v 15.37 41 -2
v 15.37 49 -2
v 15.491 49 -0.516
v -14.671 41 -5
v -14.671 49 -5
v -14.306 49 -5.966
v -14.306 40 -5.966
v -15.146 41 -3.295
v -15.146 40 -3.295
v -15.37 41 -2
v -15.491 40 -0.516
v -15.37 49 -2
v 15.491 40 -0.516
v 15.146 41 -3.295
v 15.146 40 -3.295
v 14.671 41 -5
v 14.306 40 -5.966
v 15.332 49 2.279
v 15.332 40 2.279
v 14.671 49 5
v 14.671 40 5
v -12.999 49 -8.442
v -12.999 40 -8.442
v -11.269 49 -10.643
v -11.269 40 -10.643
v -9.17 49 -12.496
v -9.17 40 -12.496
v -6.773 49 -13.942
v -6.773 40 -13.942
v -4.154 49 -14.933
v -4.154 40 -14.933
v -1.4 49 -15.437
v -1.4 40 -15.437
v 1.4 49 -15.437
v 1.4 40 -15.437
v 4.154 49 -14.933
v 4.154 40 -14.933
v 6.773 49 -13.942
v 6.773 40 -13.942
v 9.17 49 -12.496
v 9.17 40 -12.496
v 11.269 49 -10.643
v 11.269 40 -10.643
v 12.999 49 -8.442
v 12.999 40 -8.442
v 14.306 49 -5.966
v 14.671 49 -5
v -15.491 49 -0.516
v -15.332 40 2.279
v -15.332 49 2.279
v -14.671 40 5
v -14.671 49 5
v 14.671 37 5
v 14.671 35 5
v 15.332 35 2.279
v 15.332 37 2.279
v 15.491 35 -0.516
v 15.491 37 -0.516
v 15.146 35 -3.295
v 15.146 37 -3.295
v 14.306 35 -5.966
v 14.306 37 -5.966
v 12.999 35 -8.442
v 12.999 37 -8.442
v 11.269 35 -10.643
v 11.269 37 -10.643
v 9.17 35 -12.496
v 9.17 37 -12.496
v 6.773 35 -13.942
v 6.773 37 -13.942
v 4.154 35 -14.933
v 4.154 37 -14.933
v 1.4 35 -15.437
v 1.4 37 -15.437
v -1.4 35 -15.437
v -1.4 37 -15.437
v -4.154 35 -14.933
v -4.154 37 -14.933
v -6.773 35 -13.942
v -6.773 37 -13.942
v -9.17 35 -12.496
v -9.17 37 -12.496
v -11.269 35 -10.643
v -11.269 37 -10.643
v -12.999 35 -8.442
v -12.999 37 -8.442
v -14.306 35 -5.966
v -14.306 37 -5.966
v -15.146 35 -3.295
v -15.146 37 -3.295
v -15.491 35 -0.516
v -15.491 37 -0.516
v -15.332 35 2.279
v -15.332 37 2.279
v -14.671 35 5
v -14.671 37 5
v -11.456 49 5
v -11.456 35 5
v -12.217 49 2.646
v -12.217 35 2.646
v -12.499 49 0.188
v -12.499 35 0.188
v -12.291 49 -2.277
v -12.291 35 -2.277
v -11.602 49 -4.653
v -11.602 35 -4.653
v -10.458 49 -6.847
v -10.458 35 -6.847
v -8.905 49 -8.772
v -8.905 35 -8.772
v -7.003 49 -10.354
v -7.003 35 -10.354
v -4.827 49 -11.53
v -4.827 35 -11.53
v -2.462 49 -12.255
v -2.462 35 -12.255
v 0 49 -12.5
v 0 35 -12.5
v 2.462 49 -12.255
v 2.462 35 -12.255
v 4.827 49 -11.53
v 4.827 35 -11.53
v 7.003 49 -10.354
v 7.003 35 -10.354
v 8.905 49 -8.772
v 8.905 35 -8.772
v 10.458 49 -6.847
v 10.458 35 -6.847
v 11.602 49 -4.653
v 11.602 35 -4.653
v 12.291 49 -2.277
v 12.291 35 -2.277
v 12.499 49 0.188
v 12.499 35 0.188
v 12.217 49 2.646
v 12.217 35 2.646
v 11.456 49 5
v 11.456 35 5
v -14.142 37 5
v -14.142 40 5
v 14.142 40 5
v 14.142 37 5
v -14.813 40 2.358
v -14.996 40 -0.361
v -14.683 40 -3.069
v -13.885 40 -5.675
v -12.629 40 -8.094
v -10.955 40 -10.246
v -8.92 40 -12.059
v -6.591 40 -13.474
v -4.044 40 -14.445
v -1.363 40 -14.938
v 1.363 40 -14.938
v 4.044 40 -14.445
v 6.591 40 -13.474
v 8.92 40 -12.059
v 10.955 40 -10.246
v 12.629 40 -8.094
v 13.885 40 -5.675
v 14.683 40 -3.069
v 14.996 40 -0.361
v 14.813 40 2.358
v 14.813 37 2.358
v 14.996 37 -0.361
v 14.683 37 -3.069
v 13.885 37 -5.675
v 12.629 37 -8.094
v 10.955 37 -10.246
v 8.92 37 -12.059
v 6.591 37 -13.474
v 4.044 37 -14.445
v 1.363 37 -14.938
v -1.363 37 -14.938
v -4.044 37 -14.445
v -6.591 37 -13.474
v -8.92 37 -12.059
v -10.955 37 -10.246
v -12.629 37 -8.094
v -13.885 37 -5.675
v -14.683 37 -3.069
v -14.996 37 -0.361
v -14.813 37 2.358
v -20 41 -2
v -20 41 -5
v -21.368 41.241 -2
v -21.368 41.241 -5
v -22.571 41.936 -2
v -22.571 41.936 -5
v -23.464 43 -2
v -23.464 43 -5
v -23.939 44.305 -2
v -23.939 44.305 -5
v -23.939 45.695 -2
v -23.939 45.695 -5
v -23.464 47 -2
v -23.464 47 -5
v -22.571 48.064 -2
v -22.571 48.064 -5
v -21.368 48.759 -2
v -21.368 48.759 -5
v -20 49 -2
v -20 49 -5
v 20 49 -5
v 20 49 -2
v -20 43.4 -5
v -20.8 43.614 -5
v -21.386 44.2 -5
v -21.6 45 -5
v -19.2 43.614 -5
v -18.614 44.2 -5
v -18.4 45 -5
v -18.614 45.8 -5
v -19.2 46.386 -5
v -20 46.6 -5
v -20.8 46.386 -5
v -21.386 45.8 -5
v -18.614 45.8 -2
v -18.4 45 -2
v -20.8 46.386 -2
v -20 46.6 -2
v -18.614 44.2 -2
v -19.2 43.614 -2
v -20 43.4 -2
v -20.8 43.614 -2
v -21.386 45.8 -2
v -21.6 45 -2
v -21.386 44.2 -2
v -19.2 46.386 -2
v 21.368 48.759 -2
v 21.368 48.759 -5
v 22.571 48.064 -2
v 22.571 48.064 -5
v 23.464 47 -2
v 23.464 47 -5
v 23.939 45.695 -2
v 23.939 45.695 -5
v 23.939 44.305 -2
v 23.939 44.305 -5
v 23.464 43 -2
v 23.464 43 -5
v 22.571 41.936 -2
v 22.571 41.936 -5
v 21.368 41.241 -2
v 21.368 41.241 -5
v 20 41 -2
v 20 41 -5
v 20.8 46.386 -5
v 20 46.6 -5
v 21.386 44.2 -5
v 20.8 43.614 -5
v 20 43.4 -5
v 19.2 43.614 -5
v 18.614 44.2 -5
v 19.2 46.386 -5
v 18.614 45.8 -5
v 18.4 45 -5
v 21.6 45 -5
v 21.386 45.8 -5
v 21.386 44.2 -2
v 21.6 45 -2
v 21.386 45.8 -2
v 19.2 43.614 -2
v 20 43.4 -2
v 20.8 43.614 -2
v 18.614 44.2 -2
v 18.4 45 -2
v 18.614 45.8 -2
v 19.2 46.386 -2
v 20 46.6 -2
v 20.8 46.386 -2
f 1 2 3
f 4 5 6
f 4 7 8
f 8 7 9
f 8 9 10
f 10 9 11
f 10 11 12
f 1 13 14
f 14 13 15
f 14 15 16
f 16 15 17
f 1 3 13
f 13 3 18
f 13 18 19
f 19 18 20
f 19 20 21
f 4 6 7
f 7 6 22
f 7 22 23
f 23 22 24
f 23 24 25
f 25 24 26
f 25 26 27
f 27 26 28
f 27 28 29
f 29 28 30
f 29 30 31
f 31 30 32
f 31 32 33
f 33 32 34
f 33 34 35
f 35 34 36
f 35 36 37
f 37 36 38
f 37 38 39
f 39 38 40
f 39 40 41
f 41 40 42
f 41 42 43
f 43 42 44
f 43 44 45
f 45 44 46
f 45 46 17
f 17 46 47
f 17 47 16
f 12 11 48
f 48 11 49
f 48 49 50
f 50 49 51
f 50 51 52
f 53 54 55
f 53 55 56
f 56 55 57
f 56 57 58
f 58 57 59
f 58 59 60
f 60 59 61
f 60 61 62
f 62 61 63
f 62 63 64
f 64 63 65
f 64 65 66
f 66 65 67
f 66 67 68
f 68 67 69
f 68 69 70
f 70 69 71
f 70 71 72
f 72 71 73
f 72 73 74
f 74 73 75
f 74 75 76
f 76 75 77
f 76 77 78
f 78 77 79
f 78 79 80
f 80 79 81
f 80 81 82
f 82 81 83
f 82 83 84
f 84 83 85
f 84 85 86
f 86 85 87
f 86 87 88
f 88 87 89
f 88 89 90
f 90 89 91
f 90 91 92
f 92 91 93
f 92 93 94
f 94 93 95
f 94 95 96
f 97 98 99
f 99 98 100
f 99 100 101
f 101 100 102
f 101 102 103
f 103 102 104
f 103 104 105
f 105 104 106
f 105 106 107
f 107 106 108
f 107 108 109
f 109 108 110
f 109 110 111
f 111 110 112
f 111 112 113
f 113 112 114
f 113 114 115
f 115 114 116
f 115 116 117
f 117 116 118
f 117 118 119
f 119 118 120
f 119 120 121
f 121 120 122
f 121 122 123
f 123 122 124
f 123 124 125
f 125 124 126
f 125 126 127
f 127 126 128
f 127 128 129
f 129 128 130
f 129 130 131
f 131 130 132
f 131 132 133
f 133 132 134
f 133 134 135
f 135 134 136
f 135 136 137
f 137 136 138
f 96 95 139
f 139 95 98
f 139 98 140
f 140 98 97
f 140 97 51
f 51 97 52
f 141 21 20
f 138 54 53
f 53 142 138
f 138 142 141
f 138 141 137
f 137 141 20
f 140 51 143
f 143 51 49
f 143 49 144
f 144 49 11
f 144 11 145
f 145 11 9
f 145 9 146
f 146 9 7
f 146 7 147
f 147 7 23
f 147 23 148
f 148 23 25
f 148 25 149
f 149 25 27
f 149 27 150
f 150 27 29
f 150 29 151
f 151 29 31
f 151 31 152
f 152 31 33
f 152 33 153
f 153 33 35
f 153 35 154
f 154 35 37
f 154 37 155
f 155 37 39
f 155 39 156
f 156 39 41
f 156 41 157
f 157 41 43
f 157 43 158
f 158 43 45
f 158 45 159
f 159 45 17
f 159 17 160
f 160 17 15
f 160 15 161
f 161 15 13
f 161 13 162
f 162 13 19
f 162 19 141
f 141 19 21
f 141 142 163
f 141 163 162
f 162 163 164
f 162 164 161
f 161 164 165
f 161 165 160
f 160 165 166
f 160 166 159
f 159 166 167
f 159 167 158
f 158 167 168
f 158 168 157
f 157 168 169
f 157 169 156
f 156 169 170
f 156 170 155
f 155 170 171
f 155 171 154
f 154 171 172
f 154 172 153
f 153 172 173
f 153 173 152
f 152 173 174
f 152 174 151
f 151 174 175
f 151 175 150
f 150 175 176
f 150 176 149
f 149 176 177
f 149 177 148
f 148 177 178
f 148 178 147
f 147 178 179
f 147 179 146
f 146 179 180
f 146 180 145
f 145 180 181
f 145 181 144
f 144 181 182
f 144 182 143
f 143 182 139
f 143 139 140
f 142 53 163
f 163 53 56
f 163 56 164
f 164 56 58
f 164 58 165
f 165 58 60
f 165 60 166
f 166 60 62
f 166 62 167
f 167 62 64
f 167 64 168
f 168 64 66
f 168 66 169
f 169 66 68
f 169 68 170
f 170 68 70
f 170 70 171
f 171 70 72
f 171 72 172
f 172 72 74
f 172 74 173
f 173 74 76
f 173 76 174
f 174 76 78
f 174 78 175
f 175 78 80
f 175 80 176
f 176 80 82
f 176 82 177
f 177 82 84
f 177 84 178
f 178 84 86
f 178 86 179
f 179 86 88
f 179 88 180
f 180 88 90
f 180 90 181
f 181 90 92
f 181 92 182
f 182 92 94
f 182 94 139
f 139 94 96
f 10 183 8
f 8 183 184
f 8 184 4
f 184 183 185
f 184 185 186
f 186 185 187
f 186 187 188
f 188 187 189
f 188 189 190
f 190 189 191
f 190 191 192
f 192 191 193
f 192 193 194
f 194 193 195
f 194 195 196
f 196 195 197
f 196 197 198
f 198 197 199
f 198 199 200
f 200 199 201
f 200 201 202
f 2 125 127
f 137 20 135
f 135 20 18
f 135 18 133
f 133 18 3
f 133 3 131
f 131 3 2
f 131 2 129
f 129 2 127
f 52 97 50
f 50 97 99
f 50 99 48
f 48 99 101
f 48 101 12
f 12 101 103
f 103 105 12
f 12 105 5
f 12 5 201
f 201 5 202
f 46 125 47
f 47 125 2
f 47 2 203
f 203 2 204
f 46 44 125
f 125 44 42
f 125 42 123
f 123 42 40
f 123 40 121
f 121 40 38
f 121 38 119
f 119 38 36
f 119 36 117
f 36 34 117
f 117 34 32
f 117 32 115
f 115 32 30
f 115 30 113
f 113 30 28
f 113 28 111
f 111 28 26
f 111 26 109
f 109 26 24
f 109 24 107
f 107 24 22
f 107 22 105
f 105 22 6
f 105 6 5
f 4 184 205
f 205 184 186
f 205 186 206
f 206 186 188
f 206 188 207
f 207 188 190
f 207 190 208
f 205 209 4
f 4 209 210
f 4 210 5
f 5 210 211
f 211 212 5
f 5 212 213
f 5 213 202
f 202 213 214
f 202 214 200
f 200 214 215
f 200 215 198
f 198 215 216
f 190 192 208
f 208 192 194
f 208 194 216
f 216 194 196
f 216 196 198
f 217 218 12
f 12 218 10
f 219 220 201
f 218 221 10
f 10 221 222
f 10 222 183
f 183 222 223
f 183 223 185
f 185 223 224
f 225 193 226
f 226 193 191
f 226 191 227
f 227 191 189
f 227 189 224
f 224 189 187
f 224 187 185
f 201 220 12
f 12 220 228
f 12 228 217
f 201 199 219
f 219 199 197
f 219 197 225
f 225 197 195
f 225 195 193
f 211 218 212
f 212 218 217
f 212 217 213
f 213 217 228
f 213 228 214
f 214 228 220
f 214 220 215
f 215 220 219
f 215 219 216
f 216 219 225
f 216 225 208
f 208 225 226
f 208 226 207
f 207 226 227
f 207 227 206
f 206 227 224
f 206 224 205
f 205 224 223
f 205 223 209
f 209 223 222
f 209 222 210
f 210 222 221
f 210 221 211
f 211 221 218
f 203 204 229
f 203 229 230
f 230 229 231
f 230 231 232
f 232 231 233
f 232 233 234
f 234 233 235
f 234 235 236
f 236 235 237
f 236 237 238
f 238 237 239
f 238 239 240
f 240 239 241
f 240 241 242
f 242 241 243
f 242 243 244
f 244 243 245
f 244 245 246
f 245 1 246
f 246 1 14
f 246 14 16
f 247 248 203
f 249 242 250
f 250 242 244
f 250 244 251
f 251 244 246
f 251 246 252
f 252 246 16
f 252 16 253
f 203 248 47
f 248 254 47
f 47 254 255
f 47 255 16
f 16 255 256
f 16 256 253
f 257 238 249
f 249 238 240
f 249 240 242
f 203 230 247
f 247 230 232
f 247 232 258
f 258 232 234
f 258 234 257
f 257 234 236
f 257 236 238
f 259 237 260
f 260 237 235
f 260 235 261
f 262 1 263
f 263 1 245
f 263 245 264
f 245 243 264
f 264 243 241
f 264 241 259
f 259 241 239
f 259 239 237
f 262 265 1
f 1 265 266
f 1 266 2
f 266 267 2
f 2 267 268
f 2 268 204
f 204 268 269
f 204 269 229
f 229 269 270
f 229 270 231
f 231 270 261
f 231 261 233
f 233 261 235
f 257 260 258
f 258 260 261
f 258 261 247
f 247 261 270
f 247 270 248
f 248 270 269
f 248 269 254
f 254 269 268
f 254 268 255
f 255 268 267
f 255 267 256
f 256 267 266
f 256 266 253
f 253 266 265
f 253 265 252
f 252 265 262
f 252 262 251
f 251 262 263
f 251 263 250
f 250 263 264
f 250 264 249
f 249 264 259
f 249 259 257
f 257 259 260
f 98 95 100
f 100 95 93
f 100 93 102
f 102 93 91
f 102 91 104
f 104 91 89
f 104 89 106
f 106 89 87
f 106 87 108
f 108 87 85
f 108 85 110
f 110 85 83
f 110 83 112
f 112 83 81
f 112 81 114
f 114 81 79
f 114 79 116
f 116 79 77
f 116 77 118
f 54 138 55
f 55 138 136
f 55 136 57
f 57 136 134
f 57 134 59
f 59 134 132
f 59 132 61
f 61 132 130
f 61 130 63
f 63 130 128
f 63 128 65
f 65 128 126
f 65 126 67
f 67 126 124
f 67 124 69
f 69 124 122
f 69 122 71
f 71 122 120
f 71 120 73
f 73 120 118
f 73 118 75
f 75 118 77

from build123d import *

# Parameters (mm, degrees)
CORTE_EXTRUS_O1_DEPTH      = 1
CORTE_EXTRUS_O1_DEPTH_BACK = 51
RESSALTO_EXTRUS_O1_START   = -2
ESBO_O3_R                  = 1.6
RESSALTO_EXTRUS_O1_DEPTH   = 3
ESBO_O4_W                  = 67.372166219
ESBO_O4_H                  = 55.074072385
ESBO_O4_W_2                = 51.598524128
ESBO_O4_H_2                = 14
CORTE_EXTRUS_O2_DEPTH      = 6
CORTE_EXTRUS_O2_DEPTH_BACK = 16.5


with BuildPart() as part:
    # Esboço1 → Revolução1 (revolve)
    with BuildSketch(Plane.XY):
        Polygon((15, 37), (15.5, 37), (15.5, 13), (15, 13), (15, 10), (15.5, 10), (15.5, 0), (12.5, 0), (12.5, 50), (15.5, 50), (15.5, 40), (15, 40), align=None)
    revolve(axis=Axis((0, 0, 0), (0, 1, 0)))

    # Esboço2 → Corte-extrusão1 (cut, two sides)
    with BuildSketch(Plane(origin=(0, 50, 0), x_dir=(1, 0, 0), z_dir=(0, 1, 0))) as corte_extrus_o1_sk:
        with BuildLine():
            Line((-11.456439237, -5), (-14.671400751, -5))
            ThreePointArc((-14.671400751, -5), (0, -15.5), (14.671400751, -5))
            Line((14.671400751, -5), (11.456439237, -5))
            ThreePointArc((11.456439237, -5), (0, -12.5), (-11.456439237, -5))
        make_face()
    extrude(amount=CORTE_EXTRUS_O1_DEPTH, mode=Mode.SUBTRACT)
    extrude(corte_extrus_o1_sk.sketch, amount=-CORTE_EXTRUS_O1_DEPTH_BACK, mode=Mode.SUBTRACT)

    # Esboço3 → Ressalto-extrusão1 (add)
    with BuildSketch(Plane.XY.offset(RESSALTO_EXTRUS_O1_START)):
        with BuildLine():
            Line((-13.5, 49), (-20, 49))
            ThreePointArc((-20, 49), (-24, 45), (-20, 41))
            Line((-20, 41), (-13.5, 41))
            Line((-13.5, 41), (-13.5, 49))
        make_face()
        with Locations((-20, 45)):
            Circle(ESBO_O3_R, mode=Mode.SUBTRACT)
        with BuildLine():
            Line((13.5, 41), (13.5, 49))
            Line((13.5, 49), (20, 49))
            ThreePointArc((20, 49), (24, 45), (20, 41))
            Line((20, 41), (13.5, 41))
        make_face()
        with Locations((20, 45)):
            Circle(ESBO_O3_R, mode=Mode.SUBTRACT)
        with BuildLine():
            Line((13.5, 1), (20, 1))
            ThreePointArc((20, 1), (24, 5), (20, 9))
            Line((20, 9), (13.5, 9))
            Line((13.5, 9), (13.5, 1))
        make_face()
        with Locations((20, 5)):
            Circle(ESBO_O3_R, mode=Mode.SUBTRACT)
        with BuildLine():
            Line((-13.5, 9), (-13.5, 1))
            Line((-13.5, 1), (-20, 1))
            ThreePointArc((-20, 1), (-24, 5), (-20, 9))
            Line((-20, 9), (-13.5, 9))
        make_face()
        with Locations((-20, 5)):
            Circle(ESBO_O3_R, mode=Mode.SUBTRACT)
    extrude(amount=-RESSALTO_EXTRUS_O1_DEPTH)

    # Esboço4 → Corte-extrusão2 (cut, two sides)
    with BuildSketch(Plane.XY) as corte_extrus_o2_sk:
        with Locations((0.066837467, 24.799487601)):
            Rectangle(ESBO_O4_W, ESBO_O4_H)
        with Locations((0, 42)):
            Rectangle(ESBO_O4_W_2, ESBO_O4_H_2, mode=Mode.SUBTRACT)
    extrude(amount=CORTE_EXTRUS_O2_DEPTH, mode=Mode.SUBTRACT)
    extrude(corte_extrus_o2_sk.sketch, amount=-CORTE_EXTRUS_O2_DEPTH_BACK, mode=Mode.SUBTRACT)


solid = part.part
